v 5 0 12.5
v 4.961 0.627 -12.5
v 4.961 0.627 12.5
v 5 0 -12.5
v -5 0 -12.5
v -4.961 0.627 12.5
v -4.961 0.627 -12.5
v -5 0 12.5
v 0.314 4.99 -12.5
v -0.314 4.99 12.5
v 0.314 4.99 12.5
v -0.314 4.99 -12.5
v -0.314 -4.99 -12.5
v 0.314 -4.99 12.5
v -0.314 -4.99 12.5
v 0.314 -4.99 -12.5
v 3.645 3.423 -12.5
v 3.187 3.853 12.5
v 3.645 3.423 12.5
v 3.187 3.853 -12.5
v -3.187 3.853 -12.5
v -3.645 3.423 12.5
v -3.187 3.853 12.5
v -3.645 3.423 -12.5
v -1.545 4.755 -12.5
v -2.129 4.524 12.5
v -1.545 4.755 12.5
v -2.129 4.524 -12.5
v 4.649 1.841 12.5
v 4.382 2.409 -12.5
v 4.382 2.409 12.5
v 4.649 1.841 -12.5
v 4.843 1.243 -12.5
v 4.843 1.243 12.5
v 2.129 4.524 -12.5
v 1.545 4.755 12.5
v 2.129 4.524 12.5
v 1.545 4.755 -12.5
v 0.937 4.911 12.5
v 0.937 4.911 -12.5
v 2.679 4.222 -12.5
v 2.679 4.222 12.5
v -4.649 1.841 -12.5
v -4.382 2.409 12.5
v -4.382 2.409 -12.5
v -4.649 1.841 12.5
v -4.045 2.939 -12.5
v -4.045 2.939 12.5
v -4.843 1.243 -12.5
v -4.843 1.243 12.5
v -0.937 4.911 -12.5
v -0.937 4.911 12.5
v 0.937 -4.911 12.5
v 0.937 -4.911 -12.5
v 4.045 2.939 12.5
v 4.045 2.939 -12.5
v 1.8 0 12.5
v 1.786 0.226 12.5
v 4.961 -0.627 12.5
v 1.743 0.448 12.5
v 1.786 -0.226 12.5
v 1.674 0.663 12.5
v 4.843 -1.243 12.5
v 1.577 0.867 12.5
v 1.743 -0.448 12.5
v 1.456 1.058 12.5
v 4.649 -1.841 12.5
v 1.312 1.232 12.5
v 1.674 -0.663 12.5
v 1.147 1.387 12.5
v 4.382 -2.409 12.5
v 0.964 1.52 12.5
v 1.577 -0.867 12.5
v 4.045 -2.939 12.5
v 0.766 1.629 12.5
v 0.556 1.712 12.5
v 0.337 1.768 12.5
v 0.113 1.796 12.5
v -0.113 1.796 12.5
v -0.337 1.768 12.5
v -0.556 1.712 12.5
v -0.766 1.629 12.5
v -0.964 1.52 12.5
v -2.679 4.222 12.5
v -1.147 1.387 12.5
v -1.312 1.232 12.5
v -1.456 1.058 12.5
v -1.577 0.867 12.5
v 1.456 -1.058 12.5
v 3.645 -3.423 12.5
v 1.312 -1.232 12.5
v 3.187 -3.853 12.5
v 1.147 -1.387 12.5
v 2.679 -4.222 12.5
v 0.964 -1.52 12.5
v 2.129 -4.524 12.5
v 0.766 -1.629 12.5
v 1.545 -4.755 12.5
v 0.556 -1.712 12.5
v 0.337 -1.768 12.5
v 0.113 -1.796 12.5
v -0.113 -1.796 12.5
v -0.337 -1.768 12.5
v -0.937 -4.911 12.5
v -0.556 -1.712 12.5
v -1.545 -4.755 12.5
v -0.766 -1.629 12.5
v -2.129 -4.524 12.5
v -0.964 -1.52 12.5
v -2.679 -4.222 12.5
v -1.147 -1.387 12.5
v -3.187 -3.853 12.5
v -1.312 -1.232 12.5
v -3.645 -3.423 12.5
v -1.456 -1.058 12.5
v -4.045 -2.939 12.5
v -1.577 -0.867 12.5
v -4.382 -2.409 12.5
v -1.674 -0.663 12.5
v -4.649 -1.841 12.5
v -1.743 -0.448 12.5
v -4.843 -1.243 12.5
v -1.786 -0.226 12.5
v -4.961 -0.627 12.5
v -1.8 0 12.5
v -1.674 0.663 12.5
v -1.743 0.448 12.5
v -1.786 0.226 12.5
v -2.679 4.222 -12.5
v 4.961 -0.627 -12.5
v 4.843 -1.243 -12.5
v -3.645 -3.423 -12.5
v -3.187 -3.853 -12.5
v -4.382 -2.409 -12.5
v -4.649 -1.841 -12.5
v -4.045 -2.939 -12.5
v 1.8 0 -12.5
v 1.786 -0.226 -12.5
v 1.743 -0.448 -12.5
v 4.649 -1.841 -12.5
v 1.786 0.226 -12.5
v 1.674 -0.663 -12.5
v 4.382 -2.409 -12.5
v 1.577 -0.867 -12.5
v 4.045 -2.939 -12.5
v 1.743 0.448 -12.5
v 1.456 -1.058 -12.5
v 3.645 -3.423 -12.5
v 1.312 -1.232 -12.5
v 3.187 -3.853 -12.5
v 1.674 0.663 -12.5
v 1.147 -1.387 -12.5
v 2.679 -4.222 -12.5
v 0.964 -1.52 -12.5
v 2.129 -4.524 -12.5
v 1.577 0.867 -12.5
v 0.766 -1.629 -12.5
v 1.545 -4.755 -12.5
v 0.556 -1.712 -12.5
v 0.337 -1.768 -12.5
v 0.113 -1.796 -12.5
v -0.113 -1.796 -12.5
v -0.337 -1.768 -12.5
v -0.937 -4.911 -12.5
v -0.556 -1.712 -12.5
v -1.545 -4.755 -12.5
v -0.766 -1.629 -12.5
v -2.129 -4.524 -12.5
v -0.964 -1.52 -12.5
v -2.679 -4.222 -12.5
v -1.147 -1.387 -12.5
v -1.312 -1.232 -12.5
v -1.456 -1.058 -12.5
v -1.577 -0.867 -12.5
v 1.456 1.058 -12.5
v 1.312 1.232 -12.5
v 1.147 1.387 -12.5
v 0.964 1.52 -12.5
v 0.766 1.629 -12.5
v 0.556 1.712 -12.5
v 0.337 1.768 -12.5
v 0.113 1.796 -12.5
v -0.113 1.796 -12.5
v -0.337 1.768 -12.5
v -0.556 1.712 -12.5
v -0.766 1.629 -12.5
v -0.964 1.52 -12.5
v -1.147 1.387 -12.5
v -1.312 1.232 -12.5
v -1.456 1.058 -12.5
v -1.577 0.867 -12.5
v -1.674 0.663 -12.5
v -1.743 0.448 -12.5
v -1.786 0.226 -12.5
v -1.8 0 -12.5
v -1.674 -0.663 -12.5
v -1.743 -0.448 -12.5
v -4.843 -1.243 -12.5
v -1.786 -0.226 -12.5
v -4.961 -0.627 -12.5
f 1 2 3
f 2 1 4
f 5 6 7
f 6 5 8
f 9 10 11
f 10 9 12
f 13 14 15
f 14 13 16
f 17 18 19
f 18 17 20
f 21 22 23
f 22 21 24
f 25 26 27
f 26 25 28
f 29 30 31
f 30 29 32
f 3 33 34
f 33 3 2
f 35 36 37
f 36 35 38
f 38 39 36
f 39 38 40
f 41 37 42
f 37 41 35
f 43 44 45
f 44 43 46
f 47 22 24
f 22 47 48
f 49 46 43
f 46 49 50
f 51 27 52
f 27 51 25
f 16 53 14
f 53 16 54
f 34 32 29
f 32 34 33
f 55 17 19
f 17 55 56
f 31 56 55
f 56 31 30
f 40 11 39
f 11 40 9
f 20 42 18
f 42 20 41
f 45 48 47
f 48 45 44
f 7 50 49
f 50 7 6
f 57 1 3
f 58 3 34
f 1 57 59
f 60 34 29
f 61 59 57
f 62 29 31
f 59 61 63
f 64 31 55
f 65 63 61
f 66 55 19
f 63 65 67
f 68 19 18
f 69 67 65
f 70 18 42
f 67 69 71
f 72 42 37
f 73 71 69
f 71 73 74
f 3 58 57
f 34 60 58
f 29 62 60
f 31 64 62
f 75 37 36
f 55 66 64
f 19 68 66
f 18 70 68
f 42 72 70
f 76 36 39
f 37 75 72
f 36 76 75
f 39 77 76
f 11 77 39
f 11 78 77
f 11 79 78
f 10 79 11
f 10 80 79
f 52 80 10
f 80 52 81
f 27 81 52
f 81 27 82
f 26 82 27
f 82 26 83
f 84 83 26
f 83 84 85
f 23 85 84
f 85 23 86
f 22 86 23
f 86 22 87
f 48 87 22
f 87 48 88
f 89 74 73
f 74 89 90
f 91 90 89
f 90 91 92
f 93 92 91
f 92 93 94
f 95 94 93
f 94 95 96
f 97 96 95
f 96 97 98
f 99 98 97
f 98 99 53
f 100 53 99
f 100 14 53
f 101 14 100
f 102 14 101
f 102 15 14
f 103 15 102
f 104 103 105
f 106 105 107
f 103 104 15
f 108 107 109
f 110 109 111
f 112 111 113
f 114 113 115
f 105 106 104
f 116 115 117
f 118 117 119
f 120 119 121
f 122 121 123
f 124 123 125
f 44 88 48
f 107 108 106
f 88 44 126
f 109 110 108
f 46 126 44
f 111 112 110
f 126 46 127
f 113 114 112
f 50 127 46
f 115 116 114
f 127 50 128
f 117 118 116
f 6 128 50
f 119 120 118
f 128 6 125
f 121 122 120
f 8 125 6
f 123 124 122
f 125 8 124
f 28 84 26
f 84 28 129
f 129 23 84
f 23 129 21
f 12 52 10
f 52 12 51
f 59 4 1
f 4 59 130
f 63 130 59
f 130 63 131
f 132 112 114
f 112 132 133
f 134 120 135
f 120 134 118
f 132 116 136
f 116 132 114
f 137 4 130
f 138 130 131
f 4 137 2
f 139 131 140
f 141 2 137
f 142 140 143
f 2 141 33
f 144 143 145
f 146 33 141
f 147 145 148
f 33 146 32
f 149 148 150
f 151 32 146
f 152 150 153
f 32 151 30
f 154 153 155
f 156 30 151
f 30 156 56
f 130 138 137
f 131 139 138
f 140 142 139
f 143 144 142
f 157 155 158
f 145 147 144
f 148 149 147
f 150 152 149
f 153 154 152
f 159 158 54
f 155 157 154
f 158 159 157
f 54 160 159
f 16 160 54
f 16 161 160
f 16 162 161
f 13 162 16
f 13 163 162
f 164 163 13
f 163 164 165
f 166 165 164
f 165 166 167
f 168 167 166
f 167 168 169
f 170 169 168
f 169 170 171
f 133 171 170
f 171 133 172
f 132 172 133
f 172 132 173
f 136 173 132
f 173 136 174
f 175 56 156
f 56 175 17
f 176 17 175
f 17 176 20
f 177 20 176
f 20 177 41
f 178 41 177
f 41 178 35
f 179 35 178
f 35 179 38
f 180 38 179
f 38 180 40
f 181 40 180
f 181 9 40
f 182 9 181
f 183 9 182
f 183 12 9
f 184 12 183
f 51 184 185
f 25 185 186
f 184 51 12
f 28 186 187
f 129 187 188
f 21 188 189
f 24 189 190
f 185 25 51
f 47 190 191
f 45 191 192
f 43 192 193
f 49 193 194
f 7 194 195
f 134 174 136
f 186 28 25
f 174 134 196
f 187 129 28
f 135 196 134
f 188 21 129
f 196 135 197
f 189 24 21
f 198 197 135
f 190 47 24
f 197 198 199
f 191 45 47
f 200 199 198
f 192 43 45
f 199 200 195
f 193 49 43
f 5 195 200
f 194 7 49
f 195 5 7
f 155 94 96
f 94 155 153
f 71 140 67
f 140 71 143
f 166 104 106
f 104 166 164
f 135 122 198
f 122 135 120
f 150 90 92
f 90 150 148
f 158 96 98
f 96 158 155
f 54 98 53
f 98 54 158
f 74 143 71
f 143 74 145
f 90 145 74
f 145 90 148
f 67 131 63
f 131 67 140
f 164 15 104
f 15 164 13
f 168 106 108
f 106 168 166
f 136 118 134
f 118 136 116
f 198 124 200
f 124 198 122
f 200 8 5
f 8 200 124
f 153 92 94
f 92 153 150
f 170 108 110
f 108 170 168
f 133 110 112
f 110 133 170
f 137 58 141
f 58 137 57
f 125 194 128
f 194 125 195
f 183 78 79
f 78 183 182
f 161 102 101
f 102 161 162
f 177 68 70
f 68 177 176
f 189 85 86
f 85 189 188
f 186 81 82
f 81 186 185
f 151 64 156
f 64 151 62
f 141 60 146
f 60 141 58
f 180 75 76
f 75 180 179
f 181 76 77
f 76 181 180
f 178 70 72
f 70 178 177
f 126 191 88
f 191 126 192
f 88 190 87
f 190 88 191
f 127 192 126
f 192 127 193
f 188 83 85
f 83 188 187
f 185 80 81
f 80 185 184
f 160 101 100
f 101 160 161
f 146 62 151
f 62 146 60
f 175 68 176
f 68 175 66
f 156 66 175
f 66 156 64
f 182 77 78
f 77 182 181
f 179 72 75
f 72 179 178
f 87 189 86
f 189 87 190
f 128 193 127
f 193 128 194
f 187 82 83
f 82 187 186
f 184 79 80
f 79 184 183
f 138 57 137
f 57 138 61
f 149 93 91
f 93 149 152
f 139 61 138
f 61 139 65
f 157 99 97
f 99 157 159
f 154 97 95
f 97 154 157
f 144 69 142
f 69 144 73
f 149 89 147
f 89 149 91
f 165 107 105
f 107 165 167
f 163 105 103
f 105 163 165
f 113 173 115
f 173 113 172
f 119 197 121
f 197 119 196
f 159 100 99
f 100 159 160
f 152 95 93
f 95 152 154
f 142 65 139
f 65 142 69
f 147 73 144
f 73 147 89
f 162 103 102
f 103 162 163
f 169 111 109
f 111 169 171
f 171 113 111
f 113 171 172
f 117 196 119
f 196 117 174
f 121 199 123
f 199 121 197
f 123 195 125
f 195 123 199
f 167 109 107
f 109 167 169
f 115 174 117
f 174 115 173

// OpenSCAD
$fn = 50;


difference() {
	union() {
		translate(v = [0, 0, -12.5000000000]) {
			cylinder(h = 25, r = 5.0000000000);
		}
	}
	union() {
		#translate(v = [0, 0, -100.0000000000]) {
			cylinder(h = 200, r = 1.8000000000);
		}
	}
}
